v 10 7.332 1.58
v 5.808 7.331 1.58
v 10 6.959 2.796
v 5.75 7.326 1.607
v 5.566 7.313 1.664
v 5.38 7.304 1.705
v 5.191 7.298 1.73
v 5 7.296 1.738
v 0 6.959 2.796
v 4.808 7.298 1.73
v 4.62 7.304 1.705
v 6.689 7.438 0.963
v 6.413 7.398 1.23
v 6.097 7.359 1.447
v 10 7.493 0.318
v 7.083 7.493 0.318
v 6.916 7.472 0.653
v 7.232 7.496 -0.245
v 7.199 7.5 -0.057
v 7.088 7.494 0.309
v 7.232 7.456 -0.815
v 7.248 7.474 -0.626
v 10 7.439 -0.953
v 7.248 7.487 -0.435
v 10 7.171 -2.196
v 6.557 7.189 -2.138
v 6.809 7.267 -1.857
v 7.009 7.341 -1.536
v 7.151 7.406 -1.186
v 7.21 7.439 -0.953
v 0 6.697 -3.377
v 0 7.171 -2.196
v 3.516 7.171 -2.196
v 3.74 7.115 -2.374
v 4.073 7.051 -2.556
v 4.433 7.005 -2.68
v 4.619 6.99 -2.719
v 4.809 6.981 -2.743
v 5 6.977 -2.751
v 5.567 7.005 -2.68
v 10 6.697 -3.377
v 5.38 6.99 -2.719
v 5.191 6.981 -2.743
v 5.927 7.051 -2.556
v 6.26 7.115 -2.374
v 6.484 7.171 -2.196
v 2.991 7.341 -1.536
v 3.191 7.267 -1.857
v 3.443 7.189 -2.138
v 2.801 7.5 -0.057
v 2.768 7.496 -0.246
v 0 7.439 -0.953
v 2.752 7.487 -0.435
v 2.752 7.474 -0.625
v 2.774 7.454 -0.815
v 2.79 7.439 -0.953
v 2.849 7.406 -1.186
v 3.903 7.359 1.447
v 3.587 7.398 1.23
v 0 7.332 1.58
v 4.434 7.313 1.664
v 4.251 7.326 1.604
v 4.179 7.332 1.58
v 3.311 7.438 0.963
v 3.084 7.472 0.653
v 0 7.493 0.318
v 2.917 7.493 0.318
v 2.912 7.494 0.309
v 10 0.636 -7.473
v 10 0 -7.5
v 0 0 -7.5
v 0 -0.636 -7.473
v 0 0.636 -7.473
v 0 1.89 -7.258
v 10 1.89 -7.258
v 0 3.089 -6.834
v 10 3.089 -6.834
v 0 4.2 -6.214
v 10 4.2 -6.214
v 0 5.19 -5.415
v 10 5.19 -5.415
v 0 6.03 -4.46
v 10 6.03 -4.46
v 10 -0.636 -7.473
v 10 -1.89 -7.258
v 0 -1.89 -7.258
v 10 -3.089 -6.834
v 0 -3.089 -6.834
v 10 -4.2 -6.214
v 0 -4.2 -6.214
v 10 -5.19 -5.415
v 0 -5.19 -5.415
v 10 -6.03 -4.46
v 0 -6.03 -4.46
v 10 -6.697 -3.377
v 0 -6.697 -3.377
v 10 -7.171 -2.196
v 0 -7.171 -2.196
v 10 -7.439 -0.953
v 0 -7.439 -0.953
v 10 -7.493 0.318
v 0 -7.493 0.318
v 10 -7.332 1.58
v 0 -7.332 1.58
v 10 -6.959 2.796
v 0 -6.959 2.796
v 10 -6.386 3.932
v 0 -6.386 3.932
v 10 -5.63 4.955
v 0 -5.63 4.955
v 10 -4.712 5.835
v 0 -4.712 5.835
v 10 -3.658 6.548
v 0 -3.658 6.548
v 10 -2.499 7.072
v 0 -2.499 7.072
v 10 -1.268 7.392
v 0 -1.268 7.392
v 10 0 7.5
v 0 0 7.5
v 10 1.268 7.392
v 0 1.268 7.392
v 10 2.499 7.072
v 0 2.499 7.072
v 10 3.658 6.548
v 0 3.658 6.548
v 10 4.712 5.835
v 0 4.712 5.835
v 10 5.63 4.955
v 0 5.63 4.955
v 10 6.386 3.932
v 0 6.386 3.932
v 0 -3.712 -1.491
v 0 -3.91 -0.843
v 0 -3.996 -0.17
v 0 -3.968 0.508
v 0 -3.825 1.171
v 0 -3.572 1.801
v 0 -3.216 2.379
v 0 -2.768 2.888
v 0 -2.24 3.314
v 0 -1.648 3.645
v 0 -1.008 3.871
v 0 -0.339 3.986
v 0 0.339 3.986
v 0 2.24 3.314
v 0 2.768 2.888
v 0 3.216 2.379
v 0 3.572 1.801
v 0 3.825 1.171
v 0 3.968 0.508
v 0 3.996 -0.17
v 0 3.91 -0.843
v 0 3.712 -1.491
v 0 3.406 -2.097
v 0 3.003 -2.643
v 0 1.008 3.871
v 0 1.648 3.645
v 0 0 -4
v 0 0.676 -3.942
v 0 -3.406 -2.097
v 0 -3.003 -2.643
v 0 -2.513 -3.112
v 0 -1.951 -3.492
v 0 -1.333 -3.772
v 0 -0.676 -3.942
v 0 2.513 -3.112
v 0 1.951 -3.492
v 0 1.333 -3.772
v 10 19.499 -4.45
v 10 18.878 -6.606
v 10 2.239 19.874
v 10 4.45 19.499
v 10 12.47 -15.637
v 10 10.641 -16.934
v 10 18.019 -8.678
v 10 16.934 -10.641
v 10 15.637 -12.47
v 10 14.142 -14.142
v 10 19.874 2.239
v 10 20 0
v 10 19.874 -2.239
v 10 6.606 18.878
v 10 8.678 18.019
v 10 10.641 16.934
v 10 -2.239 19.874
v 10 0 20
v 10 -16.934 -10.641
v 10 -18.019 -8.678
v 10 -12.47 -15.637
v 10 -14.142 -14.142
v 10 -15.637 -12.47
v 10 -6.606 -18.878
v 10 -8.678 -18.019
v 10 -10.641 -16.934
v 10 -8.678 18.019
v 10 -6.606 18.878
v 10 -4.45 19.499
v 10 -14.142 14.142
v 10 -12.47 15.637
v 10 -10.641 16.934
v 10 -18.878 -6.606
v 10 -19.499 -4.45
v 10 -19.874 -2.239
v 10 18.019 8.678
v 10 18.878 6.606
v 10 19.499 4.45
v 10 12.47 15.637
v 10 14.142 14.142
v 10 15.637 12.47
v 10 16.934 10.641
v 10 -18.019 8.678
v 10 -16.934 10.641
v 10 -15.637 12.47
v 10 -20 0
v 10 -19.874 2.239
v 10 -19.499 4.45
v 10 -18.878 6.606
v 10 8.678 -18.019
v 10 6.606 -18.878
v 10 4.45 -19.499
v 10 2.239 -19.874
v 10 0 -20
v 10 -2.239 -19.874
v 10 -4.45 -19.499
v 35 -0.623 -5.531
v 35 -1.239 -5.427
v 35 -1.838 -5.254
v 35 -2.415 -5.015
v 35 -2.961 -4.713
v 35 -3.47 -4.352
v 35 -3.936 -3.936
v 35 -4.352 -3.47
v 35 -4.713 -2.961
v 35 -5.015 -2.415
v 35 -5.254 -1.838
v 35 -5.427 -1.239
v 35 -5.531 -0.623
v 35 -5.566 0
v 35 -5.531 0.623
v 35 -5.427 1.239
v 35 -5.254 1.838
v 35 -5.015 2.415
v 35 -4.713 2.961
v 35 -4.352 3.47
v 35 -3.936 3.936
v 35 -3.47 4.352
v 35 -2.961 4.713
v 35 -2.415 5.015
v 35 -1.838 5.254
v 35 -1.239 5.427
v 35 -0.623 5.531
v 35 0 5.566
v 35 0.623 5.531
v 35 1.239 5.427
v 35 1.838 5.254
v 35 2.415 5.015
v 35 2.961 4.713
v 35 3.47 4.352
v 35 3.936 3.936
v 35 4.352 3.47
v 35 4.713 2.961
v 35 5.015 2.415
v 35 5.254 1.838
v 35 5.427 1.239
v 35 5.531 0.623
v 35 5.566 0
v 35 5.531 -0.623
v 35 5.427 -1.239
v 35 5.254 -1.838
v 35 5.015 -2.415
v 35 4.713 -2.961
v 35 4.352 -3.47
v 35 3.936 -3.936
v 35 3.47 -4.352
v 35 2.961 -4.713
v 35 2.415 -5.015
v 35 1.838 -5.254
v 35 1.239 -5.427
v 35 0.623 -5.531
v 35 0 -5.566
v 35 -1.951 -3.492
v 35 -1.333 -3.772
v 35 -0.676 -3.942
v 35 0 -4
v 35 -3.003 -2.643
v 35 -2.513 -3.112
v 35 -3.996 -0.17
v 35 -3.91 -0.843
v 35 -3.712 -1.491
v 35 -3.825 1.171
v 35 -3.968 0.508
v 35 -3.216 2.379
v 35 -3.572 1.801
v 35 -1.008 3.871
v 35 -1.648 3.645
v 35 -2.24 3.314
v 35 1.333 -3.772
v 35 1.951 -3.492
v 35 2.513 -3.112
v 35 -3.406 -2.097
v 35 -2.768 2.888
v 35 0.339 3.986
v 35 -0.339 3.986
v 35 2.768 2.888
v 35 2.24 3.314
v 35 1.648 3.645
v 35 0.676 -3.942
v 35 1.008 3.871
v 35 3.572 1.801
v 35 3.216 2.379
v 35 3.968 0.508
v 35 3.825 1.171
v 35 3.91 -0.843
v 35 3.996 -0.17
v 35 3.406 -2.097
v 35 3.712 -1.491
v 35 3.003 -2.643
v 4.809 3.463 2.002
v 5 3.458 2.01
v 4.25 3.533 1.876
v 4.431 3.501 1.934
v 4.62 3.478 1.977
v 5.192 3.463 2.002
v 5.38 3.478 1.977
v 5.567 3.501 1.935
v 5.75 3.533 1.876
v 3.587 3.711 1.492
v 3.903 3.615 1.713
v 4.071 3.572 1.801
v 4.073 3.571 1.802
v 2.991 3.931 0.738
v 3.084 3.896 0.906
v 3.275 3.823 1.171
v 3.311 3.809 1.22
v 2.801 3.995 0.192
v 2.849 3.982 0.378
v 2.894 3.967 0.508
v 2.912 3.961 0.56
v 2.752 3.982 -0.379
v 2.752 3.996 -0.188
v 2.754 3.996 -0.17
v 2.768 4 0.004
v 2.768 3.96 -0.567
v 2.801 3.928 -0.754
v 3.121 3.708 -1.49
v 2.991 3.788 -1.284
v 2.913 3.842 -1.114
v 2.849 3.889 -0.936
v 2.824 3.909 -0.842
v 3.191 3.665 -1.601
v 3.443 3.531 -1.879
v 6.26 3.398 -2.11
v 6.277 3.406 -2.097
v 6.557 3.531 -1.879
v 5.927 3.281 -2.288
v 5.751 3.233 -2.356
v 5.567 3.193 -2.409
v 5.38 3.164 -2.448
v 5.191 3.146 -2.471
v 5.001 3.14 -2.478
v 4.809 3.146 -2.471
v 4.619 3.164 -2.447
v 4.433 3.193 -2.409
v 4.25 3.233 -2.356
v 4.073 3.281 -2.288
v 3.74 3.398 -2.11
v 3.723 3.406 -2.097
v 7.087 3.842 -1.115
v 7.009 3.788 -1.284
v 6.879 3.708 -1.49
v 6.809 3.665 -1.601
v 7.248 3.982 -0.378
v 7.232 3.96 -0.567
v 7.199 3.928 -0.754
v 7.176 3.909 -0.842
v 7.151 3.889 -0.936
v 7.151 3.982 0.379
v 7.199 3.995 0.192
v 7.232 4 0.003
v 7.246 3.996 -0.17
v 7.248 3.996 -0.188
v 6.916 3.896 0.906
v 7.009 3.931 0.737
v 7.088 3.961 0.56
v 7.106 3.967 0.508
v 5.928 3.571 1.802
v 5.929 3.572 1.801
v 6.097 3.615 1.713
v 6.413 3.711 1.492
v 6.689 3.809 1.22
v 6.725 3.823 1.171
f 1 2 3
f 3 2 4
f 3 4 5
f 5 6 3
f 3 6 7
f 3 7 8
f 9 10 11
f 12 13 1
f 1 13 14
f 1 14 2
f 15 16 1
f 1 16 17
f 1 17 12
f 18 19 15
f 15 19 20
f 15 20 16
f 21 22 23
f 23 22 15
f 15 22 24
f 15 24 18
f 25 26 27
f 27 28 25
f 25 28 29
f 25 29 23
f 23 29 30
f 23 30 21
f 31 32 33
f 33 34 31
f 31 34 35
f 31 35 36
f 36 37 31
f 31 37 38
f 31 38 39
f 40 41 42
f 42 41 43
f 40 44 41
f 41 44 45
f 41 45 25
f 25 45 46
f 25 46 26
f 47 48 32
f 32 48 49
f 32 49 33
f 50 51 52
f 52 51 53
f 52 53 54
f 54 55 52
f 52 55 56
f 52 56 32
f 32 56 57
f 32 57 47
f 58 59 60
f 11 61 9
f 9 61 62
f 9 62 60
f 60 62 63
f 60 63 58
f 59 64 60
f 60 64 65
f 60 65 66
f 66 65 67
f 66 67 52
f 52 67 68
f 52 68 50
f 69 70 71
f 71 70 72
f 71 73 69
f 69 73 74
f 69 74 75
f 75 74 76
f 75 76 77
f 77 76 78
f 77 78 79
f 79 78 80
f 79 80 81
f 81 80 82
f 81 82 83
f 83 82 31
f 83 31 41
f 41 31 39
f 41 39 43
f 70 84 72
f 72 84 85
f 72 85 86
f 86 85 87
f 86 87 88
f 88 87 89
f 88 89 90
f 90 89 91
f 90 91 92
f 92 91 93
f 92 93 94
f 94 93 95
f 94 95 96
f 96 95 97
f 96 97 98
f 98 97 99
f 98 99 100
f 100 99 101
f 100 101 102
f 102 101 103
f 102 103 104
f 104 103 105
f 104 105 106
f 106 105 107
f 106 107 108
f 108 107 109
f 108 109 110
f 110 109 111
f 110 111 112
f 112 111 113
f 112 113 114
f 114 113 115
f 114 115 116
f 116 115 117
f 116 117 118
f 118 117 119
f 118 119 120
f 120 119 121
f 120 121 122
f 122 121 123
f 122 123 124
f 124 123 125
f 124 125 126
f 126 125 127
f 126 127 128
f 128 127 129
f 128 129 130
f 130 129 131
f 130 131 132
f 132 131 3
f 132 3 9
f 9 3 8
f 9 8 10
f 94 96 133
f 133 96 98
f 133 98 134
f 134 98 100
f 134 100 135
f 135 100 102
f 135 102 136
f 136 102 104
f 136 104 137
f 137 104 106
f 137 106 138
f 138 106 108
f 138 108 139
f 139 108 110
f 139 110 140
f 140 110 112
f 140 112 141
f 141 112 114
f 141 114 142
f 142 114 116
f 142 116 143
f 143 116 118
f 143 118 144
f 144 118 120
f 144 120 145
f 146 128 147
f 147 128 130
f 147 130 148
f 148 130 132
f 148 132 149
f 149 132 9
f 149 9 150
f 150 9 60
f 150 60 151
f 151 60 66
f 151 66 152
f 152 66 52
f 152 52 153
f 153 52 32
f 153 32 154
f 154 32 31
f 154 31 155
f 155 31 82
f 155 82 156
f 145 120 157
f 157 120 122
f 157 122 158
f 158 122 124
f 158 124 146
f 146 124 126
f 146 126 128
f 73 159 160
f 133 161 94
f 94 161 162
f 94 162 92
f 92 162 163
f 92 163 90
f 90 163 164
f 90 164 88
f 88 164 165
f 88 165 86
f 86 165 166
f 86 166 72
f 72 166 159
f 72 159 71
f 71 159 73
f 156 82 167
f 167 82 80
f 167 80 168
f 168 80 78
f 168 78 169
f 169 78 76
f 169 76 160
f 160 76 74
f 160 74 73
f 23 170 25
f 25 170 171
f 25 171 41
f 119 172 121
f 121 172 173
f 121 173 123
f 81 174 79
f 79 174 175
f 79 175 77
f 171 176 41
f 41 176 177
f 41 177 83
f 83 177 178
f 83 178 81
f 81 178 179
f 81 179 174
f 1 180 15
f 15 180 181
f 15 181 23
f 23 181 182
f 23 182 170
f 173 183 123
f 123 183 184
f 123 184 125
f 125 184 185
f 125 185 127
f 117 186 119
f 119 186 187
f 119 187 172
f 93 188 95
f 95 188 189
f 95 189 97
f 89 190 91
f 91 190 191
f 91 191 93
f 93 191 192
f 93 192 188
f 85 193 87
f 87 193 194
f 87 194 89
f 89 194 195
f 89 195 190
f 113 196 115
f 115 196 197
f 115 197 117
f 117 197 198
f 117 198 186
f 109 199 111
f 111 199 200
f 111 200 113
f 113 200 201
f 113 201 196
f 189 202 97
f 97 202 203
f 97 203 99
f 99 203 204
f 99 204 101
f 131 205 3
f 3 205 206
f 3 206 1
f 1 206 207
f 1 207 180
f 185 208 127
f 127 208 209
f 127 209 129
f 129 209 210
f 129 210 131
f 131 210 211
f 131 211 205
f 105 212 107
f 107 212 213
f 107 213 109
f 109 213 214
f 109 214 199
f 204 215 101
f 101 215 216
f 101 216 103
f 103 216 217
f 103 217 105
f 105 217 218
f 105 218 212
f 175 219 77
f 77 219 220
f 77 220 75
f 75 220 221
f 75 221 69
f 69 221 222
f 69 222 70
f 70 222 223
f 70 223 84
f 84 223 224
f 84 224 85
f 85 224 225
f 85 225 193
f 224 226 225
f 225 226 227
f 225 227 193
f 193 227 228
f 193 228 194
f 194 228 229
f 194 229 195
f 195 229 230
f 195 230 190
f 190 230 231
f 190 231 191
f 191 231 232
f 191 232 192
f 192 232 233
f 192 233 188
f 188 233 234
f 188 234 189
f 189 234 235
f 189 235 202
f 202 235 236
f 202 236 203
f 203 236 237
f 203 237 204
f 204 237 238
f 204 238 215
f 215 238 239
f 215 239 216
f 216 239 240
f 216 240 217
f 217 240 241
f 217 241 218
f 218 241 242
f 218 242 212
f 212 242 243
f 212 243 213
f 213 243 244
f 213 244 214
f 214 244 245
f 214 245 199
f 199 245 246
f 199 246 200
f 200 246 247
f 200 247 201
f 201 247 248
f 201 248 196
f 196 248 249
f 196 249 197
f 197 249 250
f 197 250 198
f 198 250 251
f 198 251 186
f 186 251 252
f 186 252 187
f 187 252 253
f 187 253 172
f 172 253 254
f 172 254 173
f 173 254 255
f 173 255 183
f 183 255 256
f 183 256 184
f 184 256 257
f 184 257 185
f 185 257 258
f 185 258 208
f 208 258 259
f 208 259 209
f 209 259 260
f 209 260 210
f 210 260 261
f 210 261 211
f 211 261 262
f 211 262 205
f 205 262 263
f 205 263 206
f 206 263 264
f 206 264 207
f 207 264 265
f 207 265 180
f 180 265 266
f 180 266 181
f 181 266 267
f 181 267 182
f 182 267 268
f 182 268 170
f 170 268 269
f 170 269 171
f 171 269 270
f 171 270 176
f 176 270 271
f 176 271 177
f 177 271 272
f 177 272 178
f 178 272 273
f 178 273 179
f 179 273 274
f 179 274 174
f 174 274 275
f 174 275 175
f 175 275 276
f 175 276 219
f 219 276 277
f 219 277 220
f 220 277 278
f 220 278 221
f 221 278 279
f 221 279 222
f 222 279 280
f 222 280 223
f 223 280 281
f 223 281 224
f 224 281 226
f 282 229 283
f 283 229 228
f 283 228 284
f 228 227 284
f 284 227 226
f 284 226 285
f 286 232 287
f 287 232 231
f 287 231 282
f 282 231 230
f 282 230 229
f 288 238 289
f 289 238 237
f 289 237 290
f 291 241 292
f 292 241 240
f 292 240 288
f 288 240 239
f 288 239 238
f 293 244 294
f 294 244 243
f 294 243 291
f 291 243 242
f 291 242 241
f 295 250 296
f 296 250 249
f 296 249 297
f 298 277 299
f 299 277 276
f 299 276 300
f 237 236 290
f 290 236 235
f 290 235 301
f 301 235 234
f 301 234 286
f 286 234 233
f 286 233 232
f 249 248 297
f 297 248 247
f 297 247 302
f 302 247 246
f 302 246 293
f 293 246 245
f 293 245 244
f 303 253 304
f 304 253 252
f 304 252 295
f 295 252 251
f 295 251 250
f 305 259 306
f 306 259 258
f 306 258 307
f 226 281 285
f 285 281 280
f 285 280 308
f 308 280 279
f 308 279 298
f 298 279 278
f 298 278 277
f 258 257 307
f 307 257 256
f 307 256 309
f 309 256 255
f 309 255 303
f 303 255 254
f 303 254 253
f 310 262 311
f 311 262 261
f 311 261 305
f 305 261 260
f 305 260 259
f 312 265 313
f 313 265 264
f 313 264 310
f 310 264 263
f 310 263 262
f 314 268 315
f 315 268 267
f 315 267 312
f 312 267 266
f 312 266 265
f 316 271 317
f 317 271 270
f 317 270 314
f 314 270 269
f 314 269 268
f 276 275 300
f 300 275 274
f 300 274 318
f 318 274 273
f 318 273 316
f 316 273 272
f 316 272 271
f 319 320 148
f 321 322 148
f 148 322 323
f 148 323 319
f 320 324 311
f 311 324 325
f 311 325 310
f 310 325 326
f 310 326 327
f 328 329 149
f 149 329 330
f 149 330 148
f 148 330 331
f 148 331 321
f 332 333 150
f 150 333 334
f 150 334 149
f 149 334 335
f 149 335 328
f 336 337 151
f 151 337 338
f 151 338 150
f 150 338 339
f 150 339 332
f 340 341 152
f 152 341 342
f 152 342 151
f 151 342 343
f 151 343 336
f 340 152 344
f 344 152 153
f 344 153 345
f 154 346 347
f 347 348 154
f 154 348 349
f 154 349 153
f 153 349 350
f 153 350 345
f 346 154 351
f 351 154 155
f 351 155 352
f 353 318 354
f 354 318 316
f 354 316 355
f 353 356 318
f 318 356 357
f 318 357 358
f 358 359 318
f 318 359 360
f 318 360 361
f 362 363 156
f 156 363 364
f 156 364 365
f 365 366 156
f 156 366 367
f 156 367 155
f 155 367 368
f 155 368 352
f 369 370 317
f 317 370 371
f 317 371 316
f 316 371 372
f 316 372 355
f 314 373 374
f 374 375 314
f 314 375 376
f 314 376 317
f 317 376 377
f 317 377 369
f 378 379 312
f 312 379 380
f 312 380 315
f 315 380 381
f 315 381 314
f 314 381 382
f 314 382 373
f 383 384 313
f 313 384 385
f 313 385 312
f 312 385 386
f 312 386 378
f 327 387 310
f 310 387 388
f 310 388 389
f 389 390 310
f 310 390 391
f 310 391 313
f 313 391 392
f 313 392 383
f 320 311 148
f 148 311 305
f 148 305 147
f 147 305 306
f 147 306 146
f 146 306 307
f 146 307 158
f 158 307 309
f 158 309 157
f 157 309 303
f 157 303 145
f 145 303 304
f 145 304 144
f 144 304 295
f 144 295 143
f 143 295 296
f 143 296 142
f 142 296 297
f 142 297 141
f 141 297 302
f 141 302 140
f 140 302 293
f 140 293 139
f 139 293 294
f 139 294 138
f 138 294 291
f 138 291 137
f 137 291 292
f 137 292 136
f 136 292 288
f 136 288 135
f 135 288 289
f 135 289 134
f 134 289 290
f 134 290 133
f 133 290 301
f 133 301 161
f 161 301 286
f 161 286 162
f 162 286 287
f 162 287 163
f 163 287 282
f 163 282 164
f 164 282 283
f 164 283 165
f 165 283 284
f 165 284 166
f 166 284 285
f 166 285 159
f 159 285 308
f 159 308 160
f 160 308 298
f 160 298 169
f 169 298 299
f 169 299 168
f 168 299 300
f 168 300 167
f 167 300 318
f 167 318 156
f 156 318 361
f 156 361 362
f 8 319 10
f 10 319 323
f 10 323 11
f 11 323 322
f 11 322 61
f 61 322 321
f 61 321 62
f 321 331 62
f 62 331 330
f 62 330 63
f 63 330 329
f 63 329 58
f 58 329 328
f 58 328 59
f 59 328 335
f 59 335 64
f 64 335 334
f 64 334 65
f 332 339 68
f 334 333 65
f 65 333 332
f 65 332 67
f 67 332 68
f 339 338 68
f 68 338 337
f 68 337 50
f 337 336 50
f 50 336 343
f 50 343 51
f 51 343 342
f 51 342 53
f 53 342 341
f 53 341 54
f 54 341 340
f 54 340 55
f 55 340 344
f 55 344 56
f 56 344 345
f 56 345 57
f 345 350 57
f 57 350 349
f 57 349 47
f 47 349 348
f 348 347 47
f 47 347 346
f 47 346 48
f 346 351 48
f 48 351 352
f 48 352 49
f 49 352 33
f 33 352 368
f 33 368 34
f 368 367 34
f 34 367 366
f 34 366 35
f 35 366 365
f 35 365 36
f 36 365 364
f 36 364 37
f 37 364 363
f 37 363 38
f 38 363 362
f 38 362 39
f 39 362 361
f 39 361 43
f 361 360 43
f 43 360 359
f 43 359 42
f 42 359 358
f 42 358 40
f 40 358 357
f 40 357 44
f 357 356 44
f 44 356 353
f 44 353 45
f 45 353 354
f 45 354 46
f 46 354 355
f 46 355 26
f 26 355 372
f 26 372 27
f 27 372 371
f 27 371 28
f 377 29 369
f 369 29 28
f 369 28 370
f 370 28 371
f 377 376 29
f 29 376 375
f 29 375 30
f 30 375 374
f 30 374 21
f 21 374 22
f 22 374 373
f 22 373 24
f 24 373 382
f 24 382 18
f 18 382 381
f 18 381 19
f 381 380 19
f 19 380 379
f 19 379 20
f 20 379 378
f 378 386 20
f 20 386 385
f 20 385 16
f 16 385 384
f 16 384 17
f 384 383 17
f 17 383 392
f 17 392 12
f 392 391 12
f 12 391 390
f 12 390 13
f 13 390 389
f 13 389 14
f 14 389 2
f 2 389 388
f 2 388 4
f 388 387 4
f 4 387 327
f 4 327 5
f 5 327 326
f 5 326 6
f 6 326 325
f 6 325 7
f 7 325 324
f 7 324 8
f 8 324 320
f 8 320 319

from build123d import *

# Parameters (mm, degrees)
CROQUIS1_R                        = 7.5
SALIENTE_EXTRUIR1_DEPTH           = 10
CROQUIS2_R                        = 20
SALIENTE_EXTRUIR2_DEPTH           = 25
SALIENTE_EXTRUIR2_TAPER           = 30
CROQUIS3_R                        = 4
CORTAR_EXTRUIR2_DEPTH             = 70
TALADRO_DE_MARGEN_PARA_M41_REACH  = 47.571
TALADRO_DE_MARGEN_PARA_M41_BORE_R = 2.25


with BuildPart() as part:
    # Croquis1 → Saliente-Extruir1 (new body)
    with BuildSketch(Plane(origin=(0, 0, 0), x_dir=(0, 0, -1), z_dir=(1, 0, 0))):
        Circle(CROQUIS1_R)
    extrude(amount=SALIENTE_EXTRUIR1_DEPTH)

    # Croquis2 → Saliente-Extruir2 (add)
    with BuildSketch(Plane(origin=(10, 0, 0), x_dir=(0, 0, -1), z_dir=(1, 0, 0))):
        Circle(CROQUIS2_R)
    extrude(amount=SALIENTE_EXTRUIR2_DEPTH, taper=SALIENTE_EXTRUIR2_TAPER)

    # Croquis3 → Cortar-Extruir2 (cut)
    with BuildSketch(Plane(origin=(35, 0, 0), x_dir=(0, 0, -1), z_dir=(1, 0, 0))):
        Circle(CROQUIS3_R)
    extrude(amount=-CORTAR_EXTRUIR2_DEPTH, mode=Mode.SUBTRACT)

    # Taladro de margen para M41 bore (on position points) → Taladro de margen para M41 (cut, up to next)
    with BuildSketch(Plane(origin=(5, 7.481198926, -0.530718977), x_dir=(0, 0.070762530204, 0.997493190112), z_dir=(0, 0.997493190112, -0.070762530204)), mode=Mode.PRIVATE) as taladro_de_margen_para_m41_sk1:
        Circle(TALADRO_DE_MARGEN_PARA_M41_BORE_R)
    taladro_de_margen_para_m41_tool1 = extrude(taladro_de_margen_para_m41_sk1.sketch, amount=-TALADRO_DE_MARGEN_PARA_M41_REACH, mode=Mode.PRIVATE) & part.part
    add(taladro_de_margen_para_m41_tool1.solids().sort_by_distance((5, 7.481199, -0.530719))[0], mode=Mode.SUBTRACT)


solid = part.part
